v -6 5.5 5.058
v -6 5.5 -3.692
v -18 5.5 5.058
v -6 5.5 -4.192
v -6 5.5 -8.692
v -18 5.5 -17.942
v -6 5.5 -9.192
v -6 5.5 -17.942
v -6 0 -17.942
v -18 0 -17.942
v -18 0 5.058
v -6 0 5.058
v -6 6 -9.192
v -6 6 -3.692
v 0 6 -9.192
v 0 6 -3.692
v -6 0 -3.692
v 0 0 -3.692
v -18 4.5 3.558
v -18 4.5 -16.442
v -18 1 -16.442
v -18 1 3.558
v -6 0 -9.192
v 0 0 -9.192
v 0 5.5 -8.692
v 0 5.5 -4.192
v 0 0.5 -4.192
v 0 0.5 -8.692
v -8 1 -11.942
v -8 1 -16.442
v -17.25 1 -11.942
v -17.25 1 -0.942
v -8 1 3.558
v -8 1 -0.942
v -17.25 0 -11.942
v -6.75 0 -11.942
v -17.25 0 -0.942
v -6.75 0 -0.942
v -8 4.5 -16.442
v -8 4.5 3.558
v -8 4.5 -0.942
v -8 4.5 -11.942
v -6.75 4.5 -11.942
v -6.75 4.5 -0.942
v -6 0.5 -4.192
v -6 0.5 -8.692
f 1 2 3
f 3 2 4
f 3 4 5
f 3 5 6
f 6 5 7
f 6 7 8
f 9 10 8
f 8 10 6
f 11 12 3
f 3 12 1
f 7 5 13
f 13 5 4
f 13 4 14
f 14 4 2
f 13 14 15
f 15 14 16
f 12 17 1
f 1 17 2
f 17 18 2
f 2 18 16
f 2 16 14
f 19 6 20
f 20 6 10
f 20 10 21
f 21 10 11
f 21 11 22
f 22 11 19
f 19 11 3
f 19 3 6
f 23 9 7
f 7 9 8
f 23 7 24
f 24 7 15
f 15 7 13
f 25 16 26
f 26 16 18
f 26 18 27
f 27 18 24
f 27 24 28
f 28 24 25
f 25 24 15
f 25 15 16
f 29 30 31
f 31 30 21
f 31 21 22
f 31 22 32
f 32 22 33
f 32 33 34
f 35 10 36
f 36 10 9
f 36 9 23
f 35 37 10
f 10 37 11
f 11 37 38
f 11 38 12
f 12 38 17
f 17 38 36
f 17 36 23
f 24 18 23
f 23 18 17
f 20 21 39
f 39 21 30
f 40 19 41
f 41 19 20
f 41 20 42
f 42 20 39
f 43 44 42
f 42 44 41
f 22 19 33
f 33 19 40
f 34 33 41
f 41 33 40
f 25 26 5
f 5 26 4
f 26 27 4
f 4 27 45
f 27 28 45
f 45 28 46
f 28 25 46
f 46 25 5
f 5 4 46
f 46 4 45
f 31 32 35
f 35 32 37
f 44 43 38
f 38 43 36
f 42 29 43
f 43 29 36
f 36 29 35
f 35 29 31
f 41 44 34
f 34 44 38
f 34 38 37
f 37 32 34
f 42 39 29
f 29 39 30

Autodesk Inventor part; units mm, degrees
ref_plane "YZ Plane" through (0, 0, 0) normal (1, 0, 0) x (0, 1, 0)
ref_plane "XZ Plane" through (0, 0, 0) normal (0, 1, 0) x (-1, 0, 0)
ref_plane "XY Plane" through (0, 0, 0) normal (0, 0, 1) x (1, 0, 0)
sketch "Sketch1" plane through (0, 0, 0) normal (0, 1, 0) x (-1, 0, 0)
  line L0 (0, -3.6919) -> (0, -9.1919)
  line L1 (0, -9.1919) -> (6, -9.1919)
  line L2 (0, -3.6919) -> (6, -3.6919)
  line L3 (6, -3.6919) -> (6, 3.0581)
  line L4 (6, 3.0581) -> (18, 3.0581)
  line L5 (18, 3.0581) -> (18, -15.9419)
  line L6 (18, -15.9419) -> (6, -15.9419)
  line L7 (6, -15.9419) -> (6, -9.1919)
  point P0 (0, 0)
  dimension "d0" = 5.5
  dimension "d1" = 6
  dimension "d3" = 12
  dimension "d4" = 6.75
  dimension "d5" = 6.75
  dimension "d6" = 19
  dimension "d7" = 12
sketch "Sketch2" plane through (0, 0, 0) normal (0, 1, 0) x (-1, 0, 0)
  point P0 (0, 0)
extrude "Extrusion1" add sketch "Sketch1" along normal blind 6
sketch "Sketch3" plane through (0, 6, 0) normal (0, 1, 0) x (1, 0, 0)
  line L0 (-6, 15.9419) -> (-18, 15.9419) projected
  line L1 (-6, -3.0581) -> (-6, 3.6919) projected
  line L2 (-18, 15.9419) -> (-6, 15.9419)
  line L3 (-6, 15.9419) -> (-6, -3.0581)
  line L4 (-6, -3.0581) -> (-18, -3.0581)
  line L5 (-18, -3.0581) -> (-18, 15.9419)
  point P0 (0, 0)
extrude "Extrusion2" cut sketch "Sketch3" against normal blind 2
sketch "Sketch4" plane through (-18, 0, -15.9419) normal (-1, 0, 0) x (0, 0, 1)
  point P0 (15.9419, 0)
sketch "Sketch5" plane through (-18, 0, 3.0581) normal (0, 0, 1) x (1, 0, 0)
  line L0 (12, 4) -> (0, 4) projected
  line L1 (0, 0) -> (12, 0) projected
  line L2 (12, 4) -> (0, 4)
  line L3 (0, 4) -> (0, 0)
  line L4 (0, 0) -> (12, 0)
  line L5 (12, 0) -> (12, 4)
  point P0 (18, 0)
extrude "Extrusion3" add sketch "Sketch5" along normal blind 2
sketch "Sketch6" plane through (-6, 0, -15.9419) normal (0, 0, -1) x (-1, 0, 0)
  line L0 (12, 4) -> (0, 4) projected
  line L1 (0, 0) -> (12, 0) projected
  line L2 (0, 4) -> (12, 4)
  line L3 (12, 4) -> (12, 0)
  line L4 (12, 0) -> (0, 0)
  line L5 (0, 0) -> (0, 4)
  point P0 (-6, 0)
extrude "Extrusion4" add sketch "Sketch6" along normal blind 2
sketch "Sketch7" plane through (-18, 0, 5.0581) normal (-1, 0, 0) x (0, 0, 1)
  point P0 (-5.0581, 0)
sketch "Sketch8" plane through (-18, 0, 5.0581) normal (-1, 0, 0) x (0, 0, 1)
  point P0 (-5.0581, 0)
sketch "Sketch9" plane through (0, 4, 0) normal (0, 1, 0) x (1, 0, 0)
  line L0 (-18, -5.0581) -> (-6, -5.0581) projected
  line L1 (-6, 9.1919) -> (-6, 17.9419) projected
  line L2 (-18, -5.0581) -> (-6, -5.0581)
  line L3 (-6, -5.0581) -> (-6, 17.9419)
  line L4 (-6, 17.9419) -> (-18, 17.9419)
  line L5 (-18, 17.9419) -> (-18, -5.0581)
  point P0 (0, 0)
extrude "Extrusion5" add sketch "Sketch9" along normal blind 1.5
sketch "Sketch10" plane through (-18, 0, -17.9419) normal (-1, 0, 0) x (0, 0, 1)
  line L0 (1.5, 1) -> (21.5, 1)
  line L1 (21.5, 1) -> (21.5, 4.5)
  line L2 (21.5, 4.5) -> (1.5, 4.5)
  line L3 (1.5, 4.5) -> (1.5, 1)
  line L4 (0, 5.5) -> (23, 5.5) projected
  line L5 (23, 0) -> (0, 0) projected
  line L6 (0, 0) -> (0, 5.5) projected
  line L7 (23, 0) -> (23, 5.5) projected
  point P0 (17.9419, 0)
  dimension "d22" = 1
  dimension "d23" = 1
  dimension "d24" = 1.5
  dimension "d25" = 1.5
extrude "Extrusion6" cut sketch "Sketch10" against normal blind 10 contours L3 L2 L1 L0
sketch "Sketch11" plane through (0, 0, -3.6919) normal (1, 0, 0) x (0, 0, -1)
  line L0 (14.25, 5.5) -> (-8.75, 5.5) projected
  line L1 (5, 5.5) -> (0.5, 5.5)
  line L2 (0.5, 5.5) -> (0.5, 0.5)
  line L3 (0.5, 0.5) -> (5, 0.5)
  line L4 (5, 0.5) -> (5, 5.5)
  line L5 (0, 0) -> (5.5, 0) projected
  line L6 (0, 0) -> (0, 6) projected
  line L7 (5.5, 0) -> (5.5, 6) projected
  point P0 (-3.6919, 0)
  point P1 (0.5, 5.5)
  dimension "d28" = 0.5
  dimension "d29" = 0.5
  dimension "d30" = 0.5
extrude "Extrusion7" cut sketch "Sketch11" against normal blind 6 contours L4 L3 L2 L0
sketch "Sketch12" plane through (0, 0, 0) normal (0, -1, 0) x (1, 0, 0)
  point P0 (0, 0)
sketch "Sketch13" plane through (0, 0, 0) normal (0, -1, 0) x (1, 0, 0)
  point P0 (0, 0)
sketch "Sketch14" plane through (0, 0, 0) normal (0, -1, 0) x (1, 0, 0)
  point P0 (0, 0)
sketch "Sketch15" plane through (0, 0, 0) normal (0, -1, 0) x (1, 0, 0)
  line L0 (-17.25, -11.9419) -> (-6.75, -11.9419)
  line L1 (-6.75, -11.9419) -> (-6.75, -0.9419)
  line L2 (-6.75, -0.9419) -> (-17.25, -0.9419)
  line L3 (-17.25, -0.9419) -> (-17.25, -11.9419)
  line L4 (-6, -17.9419) -> (-18, -17.9419) projected
  line L5 (-18, 5.0581) -> (-6, 5.0581) projected
  line L6 (-18, 5.0581) -> (-18, -17.9419) projected
  line L7 (-6, -3.6919) -> (-6, 5.0581) projected
  point P0 (0, 0)
  dimension "d33" = 6
  dimension "d34" = 6
  dimension "d35" = 0.75
  dimension "d36" = 0.75
extrude "Extrusion8" cut sketch "Sketch15" against normal up to surface (4.5 mm away)
properties part number "tof-mount"
